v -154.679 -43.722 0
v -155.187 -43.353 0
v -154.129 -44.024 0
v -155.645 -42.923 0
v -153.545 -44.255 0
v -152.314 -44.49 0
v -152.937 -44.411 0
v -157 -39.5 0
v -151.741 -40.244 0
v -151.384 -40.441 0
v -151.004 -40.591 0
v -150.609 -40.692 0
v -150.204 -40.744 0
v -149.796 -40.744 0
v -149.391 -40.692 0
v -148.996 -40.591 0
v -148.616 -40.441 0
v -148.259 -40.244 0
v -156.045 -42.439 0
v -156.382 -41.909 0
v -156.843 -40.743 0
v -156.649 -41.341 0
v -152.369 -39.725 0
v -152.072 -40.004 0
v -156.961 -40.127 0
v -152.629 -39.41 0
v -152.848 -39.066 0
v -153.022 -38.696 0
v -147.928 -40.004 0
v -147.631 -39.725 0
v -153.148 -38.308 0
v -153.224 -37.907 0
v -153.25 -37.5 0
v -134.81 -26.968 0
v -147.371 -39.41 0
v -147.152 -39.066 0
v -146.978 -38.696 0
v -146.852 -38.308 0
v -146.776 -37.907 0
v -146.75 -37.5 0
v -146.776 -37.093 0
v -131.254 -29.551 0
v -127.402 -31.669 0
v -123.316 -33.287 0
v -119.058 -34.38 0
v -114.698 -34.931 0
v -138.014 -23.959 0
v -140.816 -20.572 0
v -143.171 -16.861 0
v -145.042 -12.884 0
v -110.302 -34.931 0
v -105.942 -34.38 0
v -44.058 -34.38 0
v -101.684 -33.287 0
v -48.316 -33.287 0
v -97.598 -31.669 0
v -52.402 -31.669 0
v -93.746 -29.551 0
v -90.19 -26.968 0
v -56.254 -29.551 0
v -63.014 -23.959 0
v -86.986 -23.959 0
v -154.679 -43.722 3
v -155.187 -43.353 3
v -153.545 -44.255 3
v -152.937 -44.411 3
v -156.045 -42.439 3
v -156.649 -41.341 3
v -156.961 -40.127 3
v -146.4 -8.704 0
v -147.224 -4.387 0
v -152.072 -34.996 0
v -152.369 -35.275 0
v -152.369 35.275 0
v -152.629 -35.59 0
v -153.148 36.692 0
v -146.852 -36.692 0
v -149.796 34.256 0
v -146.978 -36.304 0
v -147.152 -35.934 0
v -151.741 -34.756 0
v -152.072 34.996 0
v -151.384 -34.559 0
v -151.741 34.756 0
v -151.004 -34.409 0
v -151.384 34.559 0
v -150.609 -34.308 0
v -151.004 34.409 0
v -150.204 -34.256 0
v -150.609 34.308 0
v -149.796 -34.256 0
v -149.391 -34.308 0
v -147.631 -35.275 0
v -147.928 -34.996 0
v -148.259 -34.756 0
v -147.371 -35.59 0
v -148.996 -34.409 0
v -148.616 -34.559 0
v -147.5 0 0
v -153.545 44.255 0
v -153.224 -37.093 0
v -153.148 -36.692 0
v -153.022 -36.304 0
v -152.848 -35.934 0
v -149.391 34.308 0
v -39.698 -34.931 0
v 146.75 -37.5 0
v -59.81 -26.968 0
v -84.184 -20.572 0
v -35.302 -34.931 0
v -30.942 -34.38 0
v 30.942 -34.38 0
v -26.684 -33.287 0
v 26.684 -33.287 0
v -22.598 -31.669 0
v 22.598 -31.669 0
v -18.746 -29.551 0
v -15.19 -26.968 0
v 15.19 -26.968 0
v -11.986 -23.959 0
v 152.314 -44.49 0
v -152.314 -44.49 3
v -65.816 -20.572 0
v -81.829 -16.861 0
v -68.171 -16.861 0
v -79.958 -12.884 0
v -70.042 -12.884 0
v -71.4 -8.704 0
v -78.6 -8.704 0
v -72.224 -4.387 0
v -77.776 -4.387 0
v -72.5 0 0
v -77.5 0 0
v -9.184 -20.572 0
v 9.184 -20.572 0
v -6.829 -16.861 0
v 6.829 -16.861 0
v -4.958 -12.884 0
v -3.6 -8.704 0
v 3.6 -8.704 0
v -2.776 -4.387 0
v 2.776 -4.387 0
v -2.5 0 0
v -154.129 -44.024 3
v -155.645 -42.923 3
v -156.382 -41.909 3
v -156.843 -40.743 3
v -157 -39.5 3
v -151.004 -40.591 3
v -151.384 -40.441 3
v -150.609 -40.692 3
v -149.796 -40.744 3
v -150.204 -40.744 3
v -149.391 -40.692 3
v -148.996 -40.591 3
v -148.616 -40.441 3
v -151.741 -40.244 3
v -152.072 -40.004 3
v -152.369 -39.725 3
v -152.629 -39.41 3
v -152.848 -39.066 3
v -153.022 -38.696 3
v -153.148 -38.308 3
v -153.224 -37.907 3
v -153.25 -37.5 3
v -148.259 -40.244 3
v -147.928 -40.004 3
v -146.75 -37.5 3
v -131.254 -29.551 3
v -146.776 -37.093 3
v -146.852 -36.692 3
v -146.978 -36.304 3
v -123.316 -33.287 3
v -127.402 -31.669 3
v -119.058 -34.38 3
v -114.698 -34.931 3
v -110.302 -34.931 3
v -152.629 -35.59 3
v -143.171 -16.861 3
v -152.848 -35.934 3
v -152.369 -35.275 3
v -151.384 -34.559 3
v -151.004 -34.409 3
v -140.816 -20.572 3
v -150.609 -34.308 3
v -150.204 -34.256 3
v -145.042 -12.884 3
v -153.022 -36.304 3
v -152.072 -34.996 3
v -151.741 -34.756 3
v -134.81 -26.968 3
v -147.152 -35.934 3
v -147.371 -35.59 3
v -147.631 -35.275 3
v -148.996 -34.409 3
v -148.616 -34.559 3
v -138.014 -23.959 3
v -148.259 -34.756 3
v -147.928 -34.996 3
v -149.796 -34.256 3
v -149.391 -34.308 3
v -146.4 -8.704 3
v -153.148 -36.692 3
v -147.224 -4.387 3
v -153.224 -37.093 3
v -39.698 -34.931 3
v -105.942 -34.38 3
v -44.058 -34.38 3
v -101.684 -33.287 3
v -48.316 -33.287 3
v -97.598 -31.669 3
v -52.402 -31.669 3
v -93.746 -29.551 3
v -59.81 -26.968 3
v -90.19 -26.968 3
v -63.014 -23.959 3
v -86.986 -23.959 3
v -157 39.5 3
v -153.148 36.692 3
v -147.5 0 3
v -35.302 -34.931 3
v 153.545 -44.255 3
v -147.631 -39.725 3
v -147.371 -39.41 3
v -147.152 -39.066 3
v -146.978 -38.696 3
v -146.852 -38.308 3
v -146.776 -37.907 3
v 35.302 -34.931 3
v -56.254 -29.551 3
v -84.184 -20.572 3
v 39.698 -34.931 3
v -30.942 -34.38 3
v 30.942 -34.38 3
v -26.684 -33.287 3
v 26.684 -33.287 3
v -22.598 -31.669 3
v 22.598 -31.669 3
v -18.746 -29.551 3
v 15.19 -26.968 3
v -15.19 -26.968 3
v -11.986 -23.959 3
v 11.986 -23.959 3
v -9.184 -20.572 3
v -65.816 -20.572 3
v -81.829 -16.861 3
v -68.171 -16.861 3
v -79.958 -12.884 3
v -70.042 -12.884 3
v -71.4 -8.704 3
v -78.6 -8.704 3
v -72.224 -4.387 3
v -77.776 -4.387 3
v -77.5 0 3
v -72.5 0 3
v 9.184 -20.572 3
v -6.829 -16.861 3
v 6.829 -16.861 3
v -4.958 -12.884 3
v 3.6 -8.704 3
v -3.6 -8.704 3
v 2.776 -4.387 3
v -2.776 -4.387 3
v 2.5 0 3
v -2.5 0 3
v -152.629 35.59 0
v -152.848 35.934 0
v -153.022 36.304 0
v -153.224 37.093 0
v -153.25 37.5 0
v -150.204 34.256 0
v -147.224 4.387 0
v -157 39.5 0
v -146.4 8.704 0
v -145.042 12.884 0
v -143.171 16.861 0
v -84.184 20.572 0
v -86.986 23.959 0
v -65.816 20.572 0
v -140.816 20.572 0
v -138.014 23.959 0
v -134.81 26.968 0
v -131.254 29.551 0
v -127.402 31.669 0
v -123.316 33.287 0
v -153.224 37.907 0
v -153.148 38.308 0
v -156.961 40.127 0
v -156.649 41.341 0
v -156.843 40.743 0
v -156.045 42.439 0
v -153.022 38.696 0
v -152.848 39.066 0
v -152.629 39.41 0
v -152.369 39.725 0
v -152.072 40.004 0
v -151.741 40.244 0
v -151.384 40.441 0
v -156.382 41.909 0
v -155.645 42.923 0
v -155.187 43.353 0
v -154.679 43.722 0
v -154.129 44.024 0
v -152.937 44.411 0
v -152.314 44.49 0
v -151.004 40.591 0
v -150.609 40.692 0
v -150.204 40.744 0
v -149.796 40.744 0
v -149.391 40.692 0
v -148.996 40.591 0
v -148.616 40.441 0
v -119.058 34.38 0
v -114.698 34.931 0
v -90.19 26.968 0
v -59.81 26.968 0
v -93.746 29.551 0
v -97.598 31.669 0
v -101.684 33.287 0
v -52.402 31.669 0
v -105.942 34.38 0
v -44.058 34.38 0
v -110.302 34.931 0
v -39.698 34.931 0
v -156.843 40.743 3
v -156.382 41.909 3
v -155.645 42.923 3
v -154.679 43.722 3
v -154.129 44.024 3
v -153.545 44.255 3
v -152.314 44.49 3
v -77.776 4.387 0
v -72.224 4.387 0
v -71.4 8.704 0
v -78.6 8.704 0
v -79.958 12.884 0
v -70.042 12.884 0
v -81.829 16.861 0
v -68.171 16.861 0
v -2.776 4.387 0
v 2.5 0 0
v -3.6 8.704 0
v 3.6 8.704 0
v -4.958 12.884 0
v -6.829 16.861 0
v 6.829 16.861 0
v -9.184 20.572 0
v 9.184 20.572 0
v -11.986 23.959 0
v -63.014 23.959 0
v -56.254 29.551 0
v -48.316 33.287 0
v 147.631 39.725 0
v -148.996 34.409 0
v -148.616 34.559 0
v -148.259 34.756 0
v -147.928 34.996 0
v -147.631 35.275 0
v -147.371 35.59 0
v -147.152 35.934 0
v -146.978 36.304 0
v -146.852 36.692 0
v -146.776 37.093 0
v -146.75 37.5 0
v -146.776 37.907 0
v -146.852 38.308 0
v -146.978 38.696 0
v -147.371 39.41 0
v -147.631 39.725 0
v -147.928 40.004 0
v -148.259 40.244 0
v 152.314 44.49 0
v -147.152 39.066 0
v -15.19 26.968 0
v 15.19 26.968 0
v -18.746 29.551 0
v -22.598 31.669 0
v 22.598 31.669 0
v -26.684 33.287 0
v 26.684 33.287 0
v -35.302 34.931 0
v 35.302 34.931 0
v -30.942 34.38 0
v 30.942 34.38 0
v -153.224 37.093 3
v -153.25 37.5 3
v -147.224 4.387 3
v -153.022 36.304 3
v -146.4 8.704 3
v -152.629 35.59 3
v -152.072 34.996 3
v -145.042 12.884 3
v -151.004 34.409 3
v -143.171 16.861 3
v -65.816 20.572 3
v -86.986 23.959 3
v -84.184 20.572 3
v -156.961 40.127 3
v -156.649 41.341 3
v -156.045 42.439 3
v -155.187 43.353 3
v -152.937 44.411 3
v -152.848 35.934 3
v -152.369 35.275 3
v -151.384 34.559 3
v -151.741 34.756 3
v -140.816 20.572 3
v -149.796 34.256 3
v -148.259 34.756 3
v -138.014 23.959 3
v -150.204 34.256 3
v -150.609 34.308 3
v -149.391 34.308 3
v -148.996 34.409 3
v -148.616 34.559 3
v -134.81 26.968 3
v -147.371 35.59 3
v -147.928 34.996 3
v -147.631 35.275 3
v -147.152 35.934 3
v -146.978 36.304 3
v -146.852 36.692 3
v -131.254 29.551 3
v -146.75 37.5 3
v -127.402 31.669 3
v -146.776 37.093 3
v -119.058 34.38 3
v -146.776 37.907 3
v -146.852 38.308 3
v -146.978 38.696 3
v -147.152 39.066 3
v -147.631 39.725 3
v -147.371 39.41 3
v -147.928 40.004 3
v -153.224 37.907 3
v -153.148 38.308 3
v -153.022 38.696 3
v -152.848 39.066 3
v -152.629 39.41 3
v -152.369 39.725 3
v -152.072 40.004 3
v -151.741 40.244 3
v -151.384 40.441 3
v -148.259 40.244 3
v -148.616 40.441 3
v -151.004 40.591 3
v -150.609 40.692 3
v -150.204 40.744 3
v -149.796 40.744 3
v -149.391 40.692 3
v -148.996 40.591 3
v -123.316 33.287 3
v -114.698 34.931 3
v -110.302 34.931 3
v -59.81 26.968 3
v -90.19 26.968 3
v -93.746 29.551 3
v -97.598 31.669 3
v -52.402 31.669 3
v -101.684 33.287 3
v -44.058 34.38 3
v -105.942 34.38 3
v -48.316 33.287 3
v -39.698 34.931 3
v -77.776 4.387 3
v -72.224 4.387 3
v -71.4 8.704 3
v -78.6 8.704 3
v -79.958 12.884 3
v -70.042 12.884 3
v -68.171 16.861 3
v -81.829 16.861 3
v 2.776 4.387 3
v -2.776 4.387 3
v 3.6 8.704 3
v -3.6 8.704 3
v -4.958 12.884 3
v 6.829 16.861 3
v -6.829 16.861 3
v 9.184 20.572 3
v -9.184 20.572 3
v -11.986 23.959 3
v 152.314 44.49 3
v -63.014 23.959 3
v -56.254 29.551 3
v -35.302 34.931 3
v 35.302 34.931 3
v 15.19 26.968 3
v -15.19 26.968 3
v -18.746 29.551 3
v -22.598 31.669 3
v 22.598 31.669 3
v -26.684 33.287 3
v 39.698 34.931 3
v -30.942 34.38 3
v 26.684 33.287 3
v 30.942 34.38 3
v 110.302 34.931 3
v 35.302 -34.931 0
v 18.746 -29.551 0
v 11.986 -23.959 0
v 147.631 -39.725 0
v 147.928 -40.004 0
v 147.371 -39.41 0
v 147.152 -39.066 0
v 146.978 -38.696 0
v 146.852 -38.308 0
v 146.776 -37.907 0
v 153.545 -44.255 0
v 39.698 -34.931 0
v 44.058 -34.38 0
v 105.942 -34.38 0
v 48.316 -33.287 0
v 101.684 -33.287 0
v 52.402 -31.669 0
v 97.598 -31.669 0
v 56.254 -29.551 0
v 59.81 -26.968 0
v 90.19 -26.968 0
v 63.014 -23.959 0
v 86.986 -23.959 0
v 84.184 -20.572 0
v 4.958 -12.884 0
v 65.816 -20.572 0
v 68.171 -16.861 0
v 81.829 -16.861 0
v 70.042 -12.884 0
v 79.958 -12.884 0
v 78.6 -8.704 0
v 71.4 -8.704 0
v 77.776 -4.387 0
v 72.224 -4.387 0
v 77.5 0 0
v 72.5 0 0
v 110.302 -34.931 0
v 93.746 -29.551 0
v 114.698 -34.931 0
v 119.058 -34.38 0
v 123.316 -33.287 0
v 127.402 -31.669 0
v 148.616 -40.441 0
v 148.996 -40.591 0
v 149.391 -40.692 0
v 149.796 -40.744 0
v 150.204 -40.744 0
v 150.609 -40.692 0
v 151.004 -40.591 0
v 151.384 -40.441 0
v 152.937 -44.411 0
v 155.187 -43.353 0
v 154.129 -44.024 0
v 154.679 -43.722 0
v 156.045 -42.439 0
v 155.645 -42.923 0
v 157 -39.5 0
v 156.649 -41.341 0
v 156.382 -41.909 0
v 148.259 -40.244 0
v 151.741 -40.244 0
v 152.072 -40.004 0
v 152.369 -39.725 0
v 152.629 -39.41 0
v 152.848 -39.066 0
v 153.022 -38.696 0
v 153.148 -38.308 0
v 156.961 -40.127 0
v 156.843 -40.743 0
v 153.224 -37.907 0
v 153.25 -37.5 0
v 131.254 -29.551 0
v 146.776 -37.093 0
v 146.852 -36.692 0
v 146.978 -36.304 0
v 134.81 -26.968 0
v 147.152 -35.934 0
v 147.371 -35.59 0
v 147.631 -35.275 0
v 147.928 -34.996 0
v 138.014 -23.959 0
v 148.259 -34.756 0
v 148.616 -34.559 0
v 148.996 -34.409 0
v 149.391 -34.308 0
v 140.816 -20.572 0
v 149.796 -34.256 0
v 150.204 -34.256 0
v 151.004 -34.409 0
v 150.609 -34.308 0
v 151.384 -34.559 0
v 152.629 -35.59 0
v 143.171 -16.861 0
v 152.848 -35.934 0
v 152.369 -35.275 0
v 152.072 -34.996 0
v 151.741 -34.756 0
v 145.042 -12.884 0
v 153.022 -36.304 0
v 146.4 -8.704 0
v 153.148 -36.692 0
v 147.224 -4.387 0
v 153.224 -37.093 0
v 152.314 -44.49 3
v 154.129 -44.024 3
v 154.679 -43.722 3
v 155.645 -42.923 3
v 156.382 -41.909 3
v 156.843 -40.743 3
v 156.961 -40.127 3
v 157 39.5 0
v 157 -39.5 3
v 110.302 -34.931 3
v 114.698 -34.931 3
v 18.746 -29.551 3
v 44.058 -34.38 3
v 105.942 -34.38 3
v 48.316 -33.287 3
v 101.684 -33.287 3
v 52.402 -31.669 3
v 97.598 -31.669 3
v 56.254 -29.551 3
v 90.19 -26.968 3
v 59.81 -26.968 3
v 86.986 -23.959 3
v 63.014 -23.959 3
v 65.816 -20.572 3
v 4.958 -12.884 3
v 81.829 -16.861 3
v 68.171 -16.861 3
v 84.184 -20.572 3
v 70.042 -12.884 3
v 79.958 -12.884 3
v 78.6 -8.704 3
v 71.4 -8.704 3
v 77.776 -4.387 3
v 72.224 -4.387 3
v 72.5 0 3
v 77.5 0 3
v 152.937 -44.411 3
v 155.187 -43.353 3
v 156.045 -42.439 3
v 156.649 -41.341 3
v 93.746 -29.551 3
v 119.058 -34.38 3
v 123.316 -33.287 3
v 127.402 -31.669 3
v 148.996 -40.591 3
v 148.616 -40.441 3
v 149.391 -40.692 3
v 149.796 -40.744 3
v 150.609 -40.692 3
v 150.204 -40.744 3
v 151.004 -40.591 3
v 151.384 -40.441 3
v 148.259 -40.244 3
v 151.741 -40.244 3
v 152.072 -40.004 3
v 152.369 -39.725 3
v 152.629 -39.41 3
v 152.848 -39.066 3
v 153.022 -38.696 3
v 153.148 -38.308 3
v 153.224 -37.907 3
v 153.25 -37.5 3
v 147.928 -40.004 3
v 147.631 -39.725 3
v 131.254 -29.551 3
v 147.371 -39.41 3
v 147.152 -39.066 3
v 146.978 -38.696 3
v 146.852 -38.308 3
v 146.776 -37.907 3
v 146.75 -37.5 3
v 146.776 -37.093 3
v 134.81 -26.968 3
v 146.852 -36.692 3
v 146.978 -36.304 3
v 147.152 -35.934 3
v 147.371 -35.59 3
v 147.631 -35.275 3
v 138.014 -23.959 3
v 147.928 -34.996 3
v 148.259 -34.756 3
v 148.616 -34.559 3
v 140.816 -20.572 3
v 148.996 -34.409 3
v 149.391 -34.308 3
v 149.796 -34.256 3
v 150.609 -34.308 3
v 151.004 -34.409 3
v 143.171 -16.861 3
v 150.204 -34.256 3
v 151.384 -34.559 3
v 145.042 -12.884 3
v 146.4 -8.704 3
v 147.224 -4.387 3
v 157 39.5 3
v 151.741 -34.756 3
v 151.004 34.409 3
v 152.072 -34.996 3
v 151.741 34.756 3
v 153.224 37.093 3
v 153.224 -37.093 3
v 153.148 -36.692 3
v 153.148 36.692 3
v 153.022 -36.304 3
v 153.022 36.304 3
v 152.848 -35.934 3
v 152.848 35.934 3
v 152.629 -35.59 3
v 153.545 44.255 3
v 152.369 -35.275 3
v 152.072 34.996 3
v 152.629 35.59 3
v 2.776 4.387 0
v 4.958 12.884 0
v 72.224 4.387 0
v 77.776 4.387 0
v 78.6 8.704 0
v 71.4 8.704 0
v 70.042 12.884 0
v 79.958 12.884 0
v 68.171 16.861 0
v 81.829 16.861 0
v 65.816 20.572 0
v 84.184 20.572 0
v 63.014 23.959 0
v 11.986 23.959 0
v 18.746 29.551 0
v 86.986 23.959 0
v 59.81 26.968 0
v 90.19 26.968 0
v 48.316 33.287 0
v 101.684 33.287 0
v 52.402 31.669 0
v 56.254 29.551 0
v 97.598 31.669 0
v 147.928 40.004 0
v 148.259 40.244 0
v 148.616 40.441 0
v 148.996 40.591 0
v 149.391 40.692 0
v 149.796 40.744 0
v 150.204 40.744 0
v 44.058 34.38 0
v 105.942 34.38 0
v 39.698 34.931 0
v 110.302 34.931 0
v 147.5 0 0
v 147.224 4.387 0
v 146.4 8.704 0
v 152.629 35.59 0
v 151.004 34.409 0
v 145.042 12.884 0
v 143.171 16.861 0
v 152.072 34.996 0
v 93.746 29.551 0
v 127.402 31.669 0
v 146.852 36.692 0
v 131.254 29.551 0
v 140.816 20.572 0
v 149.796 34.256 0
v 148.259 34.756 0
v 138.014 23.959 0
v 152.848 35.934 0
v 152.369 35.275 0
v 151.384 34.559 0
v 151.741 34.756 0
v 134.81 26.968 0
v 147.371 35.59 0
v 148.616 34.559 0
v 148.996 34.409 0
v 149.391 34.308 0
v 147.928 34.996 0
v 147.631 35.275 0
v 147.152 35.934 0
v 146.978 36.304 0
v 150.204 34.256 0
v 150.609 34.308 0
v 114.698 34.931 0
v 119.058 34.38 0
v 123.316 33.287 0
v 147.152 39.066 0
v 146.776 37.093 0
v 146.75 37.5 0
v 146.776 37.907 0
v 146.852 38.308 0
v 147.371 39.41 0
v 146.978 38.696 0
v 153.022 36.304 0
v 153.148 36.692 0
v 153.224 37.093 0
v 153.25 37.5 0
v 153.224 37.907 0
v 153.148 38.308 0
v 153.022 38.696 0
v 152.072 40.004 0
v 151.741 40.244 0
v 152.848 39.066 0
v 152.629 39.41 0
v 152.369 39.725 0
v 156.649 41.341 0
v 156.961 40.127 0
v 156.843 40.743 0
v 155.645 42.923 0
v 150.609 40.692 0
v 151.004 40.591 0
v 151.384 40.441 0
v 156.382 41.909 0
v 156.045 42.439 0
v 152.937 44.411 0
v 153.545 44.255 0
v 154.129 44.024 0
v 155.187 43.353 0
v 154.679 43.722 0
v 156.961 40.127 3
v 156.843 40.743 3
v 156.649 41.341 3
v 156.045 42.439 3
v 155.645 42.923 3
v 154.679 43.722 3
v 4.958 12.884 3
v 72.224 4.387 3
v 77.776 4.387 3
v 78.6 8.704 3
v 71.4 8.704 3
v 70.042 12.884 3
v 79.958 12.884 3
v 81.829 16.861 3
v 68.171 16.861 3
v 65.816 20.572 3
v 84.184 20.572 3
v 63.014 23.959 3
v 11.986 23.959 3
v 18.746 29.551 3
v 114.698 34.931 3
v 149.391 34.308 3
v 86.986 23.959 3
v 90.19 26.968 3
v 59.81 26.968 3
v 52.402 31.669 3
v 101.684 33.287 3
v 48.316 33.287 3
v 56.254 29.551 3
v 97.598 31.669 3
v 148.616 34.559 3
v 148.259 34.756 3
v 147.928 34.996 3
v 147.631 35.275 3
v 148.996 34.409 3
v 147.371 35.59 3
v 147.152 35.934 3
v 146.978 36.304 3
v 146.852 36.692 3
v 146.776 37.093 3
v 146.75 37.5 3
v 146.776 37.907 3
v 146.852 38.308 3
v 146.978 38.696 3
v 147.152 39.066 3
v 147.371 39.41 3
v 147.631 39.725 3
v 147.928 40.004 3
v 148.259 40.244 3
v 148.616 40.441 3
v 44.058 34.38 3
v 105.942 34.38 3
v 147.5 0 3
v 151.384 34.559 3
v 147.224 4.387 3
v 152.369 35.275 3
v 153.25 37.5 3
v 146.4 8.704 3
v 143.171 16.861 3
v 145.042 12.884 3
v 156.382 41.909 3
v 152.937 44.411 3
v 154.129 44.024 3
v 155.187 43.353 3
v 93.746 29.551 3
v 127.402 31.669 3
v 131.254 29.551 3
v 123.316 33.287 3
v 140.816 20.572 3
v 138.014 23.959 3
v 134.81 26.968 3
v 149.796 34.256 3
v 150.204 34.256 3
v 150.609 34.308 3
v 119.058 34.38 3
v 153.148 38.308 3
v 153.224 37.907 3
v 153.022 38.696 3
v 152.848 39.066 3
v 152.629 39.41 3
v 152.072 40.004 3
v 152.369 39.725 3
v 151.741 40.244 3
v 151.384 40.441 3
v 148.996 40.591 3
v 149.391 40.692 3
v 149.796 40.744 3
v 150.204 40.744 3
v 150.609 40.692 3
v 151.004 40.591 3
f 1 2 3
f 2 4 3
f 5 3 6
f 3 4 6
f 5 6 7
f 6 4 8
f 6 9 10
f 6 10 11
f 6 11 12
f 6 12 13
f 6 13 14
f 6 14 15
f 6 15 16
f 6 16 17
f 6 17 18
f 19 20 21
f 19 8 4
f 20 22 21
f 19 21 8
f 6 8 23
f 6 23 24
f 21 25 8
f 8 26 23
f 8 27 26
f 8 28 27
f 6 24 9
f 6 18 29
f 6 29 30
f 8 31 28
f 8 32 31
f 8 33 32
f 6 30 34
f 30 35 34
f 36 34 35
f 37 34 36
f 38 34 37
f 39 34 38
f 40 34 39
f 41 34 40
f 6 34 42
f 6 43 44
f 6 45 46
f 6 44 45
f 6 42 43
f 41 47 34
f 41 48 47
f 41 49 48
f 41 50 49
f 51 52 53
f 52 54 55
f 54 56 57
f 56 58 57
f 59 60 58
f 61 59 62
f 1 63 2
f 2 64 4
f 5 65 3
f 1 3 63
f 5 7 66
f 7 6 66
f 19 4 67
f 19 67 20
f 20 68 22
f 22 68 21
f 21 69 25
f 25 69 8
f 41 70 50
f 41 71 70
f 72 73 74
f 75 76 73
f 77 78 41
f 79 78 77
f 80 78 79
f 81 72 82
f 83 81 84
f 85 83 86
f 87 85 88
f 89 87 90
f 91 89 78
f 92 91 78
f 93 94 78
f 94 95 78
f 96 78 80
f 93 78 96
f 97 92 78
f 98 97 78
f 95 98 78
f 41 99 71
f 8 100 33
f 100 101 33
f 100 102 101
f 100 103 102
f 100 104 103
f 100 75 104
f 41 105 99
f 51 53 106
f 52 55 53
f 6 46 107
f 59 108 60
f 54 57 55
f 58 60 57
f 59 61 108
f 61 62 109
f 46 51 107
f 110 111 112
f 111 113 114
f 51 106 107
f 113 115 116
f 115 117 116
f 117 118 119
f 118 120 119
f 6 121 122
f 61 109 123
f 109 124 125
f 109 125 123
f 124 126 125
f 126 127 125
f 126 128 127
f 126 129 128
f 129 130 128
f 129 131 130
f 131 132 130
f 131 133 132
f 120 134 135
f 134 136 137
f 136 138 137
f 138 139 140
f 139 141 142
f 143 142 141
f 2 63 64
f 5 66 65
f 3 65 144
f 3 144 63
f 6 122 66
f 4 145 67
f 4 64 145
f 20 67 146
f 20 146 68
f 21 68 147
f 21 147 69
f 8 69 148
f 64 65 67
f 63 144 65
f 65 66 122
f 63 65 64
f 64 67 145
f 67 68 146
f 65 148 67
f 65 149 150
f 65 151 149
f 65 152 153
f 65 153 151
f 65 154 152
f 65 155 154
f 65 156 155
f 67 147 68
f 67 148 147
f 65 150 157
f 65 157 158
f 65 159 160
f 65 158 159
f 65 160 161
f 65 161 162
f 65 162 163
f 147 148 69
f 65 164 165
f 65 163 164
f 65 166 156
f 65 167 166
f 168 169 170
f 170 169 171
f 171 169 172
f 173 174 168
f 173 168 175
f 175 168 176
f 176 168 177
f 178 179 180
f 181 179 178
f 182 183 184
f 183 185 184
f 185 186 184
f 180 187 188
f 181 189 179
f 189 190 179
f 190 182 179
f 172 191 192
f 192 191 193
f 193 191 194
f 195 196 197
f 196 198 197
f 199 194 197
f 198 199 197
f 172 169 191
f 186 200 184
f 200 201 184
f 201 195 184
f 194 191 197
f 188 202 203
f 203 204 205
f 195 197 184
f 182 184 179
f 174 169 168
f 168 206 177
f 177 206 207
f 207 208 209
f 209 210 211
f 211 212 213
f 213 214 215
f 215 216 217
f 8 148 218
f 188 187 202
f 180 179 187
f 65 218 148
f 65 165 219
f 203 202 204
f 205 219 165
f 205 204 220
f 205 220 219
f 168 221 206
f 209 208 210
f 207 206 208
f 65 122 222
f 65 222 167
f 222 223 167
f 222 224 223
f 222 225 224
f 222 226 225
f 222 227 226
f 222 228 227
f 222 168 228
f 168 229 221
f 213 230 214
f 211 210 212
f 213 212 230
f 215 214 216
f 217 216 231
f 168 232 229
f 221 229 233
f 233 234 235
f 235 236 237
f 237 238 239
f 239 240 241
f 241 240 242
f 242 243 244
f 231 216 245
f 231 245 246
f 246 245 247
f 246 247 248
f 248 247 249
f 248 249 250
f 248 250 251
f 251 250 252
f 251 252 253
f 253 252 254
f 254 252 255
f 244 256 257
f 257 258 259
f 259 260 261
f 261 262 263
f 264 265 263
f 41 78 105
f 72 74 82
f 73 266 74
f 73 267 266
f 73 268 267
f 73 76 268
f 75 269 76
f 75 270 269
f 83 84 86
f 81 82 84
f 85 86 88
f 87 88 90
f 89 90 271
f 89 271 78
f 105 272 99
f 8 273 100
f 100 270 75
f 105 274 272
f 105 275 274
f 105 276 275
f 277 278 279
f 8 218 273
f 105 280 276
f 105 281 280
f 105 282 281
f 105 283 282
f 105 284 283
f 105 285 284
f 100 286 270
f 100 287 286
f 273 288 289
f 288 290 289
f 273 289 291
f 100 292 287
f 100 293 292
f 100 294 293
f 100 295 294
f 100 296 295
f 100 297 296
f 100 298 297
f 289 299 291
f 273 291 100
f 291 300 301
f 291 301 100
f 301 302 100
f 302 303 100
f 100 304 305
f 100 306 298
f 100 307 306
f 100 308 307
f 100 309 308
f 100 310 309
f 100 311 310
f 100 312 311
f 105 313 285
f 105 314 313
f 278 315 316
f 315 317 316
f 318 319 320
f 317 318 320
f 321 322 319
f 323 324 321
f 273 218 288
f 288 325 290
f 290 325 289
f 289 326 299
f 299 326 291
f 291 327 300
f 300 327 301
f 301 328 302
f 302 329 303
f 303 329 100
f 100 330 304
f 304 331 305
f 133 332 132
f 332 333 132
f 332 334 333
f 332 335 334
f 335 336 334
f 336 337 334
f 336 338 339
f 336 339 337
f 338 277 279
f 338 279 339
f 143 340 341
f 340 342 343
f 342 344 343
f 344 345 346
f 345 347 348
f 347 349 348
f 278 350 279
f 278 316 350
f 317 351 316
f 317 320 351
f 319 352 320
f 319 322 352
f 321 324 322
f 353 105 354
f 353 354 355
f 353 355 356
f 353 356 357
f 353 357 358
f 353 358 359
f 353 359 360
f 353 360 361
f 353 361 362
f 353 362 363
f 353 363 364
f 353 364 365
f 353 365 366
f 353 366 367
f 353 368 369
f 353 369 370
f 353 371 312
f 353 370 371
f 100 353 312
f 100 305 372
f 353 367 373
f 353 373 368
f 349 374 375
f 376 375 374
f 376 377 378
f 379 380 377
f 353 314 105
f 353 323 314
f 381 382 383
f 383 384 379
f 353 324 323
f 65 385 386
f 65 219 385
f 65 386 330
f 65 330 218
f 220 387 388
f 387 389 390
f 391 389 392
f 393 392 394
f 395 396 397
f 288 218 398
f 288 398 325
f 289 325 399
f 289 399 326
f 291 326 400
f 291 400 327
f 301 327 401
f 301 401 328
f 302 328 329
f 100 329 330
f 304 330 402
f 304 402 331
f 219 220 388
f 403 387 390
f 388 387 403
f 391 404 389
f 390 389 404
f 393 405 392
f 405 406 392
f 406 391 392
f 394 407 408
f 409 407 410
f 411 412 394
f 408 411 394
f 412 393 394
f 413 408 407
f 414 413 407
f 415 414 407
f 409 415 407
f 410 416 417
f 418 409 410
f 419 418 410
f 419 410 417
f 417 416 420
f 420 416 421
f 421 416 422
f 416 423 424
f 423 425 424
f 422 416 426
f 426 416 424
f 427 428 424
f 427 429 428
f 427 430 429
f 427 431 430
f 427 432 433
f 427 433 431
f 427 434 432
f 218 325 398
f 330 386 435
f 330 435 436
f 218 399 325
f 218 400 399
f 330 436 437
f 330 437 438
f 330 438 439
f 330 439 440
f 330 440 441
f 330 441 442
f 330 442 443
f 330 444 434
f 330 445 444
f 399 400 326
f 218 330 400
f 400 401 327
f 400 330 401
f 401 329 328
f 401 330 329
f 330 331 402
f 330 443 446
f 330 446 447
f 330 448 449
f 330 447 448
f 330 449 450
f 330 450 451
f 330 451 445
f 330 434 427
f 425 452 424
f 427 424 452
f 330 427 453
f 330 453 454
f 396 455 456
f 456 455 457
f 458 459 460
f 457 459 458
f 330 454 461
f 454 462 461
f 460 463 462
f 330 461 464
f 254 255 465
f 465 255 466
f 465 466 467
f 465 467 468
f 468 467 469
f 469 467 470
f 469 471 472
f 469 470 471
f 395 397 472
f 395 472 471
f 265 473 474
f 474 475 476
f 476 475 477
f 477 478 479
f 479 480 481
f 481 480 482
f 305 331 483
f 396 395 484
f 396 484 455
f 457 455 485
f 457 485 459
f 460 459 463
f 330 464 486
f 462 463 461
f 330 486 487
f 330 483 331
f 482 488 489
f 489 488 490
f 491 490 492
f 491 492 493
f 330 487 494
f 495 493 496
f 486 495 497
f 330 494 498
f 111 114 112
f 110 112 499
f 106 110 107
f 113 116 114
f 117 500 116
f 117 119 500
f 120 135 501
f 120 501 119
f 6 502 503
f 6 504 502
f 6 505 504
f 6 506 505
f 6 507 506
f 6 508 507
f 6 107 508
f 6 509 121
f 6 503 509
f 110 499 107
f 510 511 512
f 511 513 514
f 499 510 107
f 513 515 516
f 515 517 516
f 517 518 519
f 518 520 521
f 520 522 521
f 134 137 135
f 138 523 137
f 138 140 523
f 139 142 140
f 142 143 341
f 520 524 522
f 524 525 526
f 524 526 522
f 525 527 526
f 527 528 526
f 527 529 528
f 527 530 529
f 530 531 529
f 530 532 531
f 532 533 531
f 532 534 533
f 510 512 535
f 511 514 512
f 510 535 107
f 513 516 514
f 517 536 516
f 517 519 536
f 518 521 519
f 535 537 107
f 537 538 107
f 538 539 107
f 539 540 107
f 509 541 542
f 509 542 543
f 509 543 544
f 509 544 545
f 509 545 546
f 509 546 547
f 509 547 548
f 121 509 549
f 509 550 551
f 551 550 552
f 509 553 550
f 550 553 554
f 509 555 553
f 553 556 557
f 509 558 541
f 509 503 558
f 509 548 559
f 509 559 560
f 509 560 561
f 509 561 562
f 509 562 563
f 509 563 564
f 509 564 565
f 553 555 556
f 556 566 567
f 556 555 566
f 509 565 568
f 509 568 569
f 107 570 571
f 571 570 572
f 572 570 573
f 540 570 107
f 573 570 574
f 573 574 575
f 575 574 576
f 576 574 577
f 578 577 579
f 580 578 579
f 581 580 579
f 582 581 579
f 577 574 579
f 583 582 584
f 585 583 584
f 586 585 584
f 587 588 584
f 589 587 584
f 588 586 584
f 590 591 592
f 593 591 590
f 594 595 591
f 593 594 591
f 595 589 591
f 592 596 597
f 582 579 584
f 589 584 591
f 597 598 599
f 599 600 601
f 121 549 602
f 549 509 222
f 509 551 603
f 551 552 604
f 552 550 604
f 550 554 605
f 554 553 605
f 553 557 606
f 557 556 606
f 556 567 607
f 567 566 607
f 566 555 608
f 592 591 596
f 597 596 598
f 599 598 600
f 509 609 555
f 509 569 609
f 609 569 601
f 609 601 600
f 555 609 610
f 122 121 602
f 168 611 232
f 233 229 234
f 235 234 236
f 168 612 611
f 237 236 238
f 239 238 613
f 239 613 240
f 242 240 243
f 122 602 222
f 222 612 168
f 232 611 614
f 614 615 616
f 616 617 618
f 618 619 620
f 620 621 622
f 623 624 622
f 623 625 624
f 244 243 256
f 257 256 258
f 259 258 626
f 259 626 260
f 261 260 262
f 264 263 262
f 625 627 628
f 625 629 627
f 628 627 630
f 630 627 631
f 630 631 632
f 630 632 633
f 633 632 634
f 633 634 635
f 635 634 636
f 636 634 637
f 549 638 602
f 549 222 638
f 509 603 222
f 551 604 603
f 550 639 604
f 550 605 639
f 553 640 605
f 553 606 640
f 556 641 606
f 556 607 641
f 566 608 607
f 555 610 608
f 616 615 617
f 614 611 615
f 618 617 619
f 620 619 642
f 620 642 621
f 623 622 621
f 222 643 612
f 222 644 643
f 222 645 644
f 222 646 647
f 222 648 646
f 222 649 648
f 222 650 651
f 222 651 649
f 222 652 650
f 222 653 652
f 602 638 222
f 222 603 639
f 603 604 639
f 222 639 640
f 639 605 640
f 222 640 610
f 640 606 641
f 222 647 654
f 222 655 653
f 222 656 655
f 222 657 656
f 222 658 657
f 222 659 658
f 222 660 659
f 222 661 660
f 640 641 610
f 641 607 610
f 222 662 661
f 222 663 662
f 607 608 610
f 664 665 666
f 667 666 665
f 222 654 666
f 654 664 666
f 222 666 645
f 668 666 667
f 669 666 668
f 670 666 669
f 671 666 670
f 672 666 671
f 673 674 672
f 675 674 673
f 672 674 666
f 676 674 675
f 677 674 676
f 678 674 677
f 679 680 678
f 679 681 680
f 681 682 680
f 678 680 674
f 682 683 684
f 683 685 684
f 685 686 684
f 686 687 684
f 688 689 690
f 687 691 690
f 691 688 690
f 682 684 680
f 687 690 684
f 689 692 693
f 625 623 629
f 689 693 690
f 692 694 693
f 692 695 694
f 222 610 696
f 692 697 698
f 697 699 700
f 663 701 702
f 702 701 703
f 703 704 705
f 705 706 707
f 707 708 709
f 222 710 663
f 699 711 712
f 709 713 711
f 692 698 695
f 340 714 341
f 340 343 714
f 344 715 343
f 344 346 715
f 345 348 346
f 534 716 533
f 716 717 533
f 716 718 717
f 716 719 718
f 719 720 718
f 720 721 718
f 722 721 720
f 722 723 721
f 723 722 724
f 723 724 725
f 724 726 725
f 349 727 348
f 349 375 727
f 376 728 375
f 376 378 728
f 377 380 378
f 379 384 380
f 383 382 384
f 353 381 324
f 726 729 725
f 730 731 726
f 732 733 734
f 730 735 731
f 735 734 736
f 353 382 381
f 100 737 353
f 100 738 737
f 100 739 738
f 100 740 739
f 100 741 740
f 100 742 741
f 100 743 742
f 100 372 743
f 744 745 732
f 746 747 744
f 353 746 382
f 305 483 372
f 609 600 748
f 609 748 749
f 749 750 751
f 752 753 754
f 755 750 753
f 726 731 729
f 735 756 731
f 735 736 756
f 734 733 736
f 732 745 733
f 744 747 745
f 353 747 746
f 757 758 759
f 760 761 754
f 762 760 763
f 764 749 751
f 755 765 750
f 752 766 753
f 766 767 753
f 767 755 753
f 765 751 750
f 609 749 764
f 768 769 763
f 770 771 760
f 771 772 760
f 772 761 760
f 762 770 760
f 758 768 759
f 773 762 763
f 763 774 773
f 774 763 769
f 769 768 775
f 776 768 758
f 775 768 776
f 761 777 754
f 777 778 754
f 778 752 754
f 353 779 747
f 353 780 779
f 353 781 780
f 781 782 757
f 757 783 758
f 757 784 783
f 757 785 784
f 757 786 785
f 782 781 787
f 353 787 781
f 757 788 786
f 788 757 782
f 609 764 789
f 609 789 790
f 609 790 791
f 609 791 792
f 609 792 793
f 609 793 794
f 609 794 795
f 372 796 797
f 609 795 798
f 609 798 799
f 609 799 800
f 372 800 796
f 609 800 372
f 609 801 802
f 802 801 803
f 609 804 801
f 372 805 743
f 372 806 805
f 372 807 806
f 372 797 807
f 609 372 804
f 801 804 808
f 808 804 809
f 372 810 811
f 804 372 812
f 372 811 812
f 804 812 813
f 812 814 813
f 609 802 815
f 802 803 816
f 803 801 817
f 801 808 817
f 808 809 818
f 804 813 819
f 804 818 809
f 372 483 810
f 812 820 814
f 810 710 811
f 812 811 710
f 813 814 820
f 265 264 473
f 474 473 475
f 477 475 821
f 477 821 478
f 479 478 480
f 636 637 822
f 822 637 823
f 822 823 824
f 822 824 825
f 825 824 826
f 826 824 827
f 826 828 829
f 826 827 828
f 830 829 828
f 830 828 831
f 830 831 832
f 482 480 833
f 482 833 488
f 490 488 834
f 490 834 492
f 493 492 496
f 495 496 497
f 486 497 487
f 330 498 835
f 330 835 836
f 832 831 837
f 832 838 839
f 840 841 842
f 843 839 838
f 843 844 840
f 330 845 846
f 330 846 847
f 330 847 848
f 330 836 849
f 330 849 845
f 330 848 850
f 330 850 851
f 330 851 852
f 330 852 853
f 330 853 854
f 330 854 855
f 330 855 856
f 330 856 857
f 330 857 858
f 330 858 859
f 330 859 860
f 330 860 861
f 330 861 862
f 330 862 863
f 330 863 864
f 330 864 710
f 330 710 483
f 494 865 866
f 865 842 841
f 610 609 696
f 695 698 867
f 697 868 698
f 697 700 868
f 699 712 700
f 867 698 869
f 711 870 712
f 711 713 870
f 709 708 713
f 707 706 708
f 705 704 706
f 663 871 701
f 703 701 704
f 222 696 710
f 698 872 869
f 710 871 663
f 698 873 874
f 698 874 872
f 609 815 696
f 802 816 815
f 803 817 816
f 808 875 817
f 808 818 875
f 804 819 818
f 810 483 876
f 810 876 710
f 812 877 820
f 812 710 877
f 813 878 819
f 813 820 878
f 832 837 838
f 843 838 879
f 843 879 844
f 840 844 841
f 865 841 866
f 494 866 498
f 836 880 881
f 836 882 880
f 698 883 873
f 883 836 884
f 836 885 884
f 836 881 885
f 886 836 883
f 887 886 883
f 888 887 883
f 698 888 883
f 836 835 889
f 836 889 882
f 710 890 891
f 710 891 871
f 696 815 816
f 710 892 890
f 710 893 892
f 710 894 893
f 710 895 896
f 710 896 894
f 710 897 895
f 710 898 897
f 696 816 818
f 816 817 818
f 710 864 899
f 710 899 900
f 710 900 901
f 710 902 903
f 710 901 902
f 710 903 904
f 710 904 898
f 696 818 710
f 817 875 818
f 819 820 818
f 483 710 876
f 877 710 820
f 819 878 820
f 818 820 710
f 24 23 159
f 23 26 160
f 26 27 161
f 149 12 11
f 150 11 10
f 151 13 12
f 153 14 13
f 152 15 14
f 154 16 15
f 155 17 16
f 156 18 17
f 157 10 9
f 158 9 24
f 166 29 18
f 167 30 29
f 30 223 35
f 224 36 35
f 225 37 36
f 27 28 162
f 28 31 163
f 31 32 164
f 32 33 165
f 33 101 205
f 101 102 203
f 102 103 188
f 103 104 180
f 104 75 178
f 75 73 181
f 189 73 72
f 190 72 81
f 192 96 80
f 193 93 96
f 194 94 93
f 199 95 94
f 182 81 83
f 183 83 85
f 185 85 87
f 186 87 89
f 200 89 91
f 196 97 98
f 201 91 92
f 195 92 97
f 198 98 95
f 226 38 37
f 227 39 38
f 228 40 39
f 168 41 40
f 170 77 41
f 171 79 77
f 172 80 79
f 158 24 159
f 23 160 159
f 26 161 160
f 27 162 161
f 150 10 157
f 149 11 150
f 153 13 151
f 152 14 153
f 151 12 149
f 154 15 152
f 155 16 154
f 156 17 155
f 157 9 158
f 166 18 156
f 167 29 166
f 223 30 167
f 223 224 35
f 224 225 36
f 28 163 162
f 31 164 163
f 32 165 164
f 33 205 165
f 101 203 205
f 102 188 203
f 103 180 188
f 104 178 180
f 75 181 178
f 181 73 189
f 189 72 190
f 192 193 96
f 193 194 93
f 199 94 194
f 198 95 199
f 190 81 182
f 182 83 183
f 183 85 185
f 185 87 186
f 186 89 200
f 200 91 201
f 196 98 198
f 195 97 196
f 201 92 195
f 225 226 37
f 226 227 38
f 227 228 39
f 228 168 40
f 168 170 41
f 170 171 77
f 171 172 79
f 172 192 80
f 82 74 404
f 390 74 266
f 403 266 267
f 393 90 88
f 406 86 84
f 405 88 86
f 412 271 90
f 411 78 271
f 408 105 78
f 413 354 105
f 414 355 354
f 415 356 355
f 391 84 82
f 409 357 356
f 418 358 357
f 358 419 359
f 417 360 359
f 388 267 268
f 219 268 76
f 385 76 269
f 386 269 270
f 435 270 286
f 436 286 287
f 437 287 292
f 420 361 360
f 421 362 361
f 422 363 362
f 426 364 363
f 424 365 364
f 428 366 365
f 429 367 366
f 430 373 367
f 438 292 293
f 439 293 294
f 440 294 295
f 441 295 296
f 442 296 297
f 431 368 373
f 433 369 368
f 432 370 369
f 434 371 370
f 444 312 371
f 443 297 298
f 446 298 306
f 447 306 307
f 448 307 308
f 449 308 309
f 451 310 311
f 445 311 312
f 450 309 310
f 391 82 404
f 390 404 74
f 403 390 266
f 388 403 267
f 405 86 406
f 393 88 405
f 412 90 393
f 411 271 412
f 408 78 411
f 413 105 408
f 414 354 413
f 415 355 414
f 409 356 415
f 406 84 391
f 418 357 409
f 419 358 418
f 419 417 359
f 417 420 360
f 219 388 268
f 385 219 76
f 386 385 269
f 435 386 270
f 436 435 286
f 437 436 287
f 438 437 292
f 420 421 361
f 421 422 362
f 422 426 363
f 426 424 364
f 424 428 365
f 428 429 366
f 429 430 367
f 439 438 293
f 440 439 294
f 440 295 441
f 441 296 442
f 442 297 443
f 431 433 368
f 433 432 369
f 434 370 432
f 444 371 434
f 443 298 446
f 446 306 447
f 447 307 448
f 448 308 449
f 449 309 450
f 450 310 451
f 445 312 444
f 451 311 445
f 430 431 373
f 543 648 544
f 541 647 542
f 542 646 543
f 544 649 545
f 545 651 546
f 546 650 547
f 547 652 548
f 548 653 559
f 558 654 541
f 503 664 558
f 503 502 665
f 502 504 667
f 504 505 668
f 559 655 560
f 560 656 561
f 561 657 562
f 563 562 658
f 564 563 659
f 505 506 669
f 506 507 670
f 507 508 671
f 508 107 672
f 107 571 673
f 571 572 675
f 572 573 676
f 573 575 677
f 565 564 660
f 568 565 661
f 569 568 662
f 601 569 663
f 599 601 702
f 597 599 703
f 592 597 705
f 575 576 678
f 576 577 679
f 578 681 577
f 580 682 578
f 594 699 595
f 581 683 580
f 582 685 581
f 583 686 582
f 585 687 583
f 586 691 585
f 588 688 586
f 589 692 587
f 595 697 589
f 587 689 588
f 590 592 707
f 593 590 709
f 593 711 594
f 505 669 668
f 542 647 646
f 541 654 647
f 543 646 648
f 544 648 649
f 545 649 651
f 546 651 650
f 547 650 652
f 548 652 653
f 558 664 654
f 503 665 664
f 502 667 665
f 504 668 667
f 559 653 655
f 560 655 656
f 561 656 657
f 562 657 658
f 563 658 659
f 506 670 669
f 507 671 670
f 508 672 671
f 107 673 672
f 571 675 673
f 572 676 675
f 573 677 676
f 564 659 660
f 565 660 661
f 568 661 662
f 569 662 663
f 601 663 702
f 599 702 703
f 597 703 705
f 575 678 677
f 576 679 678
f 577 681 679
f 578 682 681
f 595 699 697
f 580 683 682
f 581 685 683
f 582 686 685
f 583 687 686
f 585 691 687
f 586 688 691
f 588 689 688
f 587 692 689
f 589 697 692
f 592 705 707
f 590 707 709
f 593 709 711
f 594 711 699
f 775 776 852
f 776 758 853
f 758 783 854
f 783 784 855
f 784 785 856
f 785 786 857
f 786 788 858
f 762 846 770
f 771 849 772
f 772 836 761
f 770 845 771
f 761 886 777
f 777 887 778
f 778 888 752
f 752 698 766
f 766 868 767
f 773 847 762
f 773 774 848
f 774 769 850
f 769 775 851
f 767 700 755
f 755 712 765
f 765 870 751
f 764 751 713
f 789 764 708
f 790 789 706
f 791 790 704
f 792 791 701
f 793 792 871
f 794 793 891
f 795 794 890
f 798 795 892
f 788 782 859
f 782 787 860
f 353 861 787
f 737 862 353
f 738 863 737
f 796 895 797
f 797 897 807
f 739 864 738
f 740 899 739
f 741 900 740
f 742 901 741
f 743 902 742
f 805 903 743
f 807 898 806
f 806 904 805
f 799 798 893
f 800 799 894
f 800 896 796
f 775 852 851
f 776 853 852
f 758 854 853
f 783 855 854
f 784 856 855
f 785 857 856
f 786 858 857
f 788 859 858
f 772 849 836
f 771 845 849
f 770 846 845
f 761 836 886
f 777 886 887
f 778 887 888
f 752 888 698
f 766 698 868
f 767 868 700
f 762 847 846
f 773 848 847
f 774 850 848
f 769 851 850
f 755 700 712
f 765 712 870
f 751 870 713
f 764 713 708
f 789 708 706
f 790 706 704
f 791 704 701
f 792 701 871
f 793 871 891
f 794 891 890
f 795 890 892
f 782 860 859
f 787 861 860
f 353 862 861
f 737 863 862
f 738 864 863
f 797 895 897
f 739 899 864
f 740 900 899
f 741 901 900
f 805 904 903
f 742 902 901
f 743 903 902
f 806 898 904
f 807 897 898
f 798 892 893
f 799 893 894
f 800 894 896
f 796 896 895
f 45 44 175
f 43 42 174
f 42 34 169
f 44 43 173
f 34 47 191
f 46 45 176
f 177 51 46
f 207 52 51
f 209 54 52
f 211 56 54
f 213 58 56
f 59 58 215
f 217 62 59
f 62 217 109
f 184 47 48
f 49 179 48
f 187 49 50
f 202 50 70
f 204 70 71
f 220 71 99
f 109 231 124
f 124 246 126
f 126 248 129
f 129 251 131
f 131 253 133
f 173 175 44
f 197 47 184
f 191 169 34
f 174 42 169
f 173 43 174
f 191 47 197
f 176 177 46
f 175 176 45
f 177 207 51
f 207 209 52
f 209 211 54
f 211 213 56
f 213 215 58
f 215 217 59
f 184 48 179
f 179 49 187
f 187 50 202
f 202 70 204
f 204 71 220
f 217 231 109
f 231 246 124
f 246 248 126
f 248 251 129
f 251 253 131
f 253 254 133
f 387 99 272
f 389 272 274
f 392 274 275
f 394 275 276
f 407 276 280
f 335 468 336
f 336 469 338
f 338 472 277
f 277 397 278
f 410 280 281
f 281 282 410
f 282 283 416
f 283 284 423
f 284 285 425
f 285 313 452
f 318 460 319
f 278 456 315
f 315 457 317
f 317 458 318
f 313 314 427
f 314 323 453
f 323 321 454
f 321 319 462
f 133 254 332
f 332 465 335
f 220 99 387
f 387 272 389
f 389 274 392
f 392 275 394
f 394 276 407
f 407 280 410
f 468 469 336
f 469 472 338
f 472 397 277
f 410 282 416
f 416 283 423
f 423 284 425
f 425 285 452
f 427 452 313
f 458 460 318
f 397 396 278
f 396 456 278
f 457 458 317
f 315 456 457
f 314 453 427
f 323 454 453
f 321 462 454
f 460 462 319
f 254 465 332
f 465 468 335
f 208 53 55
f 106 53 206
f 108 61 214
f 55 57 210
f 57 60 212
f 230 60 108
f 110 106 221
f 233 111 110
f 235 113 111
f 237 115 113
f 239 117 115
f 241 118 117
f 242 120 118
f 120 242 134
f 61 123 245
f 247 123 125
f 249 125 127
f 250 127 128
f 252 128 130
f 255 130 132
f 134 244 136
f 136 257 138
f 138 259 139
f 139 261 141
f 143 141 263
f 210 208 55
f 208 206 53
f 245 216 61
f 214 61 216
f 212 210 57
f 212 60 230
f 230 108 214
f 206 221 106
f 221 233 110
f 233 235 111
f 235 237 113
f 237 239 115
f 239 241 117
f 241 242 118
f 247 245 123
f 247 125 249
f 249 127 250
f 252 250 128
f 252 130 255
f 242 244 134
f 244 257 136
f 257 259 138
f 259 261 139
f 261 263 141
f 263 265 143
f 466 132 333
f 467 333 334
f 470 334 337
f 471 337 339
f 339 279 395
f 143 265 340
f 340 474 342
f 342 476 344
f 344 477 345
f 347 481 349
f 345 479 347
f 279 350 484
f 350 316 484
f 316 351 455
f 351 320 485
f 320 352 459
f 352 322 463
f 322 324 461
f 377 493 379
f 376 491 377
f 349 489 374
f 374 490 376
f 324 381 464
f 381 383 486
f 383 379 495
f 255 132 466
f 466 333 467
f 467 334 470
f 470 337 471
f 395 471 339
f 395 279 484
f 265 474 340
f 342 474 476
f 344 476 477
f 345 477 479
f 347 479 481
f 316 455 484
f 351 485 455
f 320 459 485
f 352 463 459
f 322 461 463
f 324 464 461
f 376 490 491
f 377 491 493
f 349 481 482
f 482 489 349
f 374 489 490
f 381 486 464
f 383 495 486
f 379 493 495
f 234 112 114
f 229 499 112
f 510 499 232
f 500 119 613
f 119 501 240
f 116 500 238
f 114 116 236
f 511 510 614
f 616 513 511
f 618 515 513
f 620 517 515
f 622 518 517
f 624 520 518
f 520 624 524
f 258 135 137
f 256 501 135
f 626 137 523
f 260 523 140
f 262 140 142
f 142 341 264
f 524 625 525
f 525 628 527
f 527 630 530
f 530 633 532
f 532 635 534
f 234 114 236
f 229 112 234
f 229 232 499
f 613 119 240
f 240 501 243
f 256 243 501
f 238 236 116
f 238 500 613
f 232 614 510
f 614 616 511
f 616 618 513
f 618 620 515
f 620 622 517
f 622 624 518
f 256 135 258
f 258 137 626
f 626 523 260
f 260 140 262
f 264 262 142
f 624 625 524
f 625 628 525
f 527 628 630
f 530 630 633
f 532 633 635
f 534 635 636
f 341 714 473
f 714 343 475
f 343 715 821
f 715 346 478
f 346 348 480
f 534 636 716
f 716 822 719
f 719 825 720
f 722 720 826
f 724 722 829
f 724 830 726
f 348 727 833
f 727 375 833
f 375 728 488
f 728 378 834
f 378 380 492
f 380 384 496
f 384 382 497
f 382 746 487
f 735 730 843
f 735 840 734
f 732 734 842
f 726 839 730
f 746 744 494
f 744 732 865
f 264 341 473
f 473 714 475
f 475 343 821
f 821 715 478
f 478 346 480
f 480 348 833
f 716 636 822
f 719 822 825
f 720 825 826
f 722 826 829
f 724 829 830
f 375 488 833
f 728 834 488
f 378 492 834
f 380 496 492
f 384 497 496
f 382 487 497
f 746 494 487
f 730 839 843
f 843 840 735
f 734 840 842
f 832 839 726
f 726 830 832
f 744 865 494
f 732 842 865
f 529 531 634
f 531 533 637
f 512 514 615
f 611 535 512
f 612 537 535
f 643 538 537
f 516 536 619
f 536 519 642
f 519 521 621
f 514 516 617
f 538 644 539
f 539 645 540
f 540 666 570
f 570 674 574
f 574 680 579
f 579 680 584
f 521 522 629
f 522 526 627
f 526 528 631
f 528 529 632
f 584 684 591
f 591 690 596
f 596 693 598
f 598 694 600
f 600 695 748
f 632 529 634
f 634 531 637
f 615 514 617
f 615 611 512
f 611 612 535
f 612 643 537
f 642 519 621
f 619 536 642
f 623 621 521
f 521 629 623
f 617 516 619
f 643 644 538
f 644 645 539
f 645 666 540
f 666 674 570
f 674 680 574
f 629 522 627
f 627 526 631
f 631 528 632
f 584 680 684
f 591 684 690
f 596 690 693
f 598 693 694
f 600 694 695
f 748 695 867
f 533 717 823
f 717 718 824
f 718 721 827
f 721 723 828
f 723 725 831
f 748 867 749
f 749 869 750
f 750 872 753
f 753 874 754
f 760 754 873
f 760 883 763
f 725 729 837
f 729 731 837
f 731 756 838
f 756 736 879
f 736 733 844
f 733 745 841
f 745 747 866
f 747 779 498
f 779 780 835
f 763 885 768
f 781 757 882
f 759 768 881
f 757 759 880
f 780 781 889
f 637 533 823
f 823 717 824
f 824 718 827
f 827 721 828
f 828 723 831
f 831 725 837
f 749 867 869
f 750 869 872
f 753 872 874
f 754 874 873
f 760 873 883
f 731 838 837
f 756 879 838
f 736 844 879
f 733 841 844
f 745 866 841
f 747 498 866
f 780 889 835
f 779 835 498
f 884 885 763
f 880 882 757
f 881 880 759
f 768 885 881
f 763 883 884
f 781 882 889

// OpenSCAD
$fn = 50;

difference() {
	union() {
		hull() {
			translate(v = [-152.0, 39.5, 0]) {
				cylinder(h = 3, r = 5);
			}
			translate(v = [152.0, 39.5, 0]) {
				cylinder(h = 3, r = 5);
			}
			translate(v = [-152.0, -39.5, 0]) {
				cylinder(h = 3, r = 5);
			}
			translate(v = [152.0, -39.5, 0]) {
				cylinder(h = 3, r = 5);
			}
		}
	}
	union() {
		translate(v = [-150.0, -37.5, -100.0]) {
			cylinder(h = 200, r = 3.25);
		}
		translate(v = [-150.0, 37.5, -100.0]) {
			cylinder(h = 200, r = 3.25);
		}
		translate(v = [150.0, -37.5, -100.0]) {
			cylinder(h = 200, r = 3.25);
		}
		translate(v = [150.0, 37.5, -100.0]) {
			cylinder(h = 200, r = 3.25);
		}
		translate(v = [-150.0, -37.5, -100.0]) {
			cylinder(h = 200, r = 1.8);
		}
		translate(v = [-150.0, 37.5, -100.0]) {
			cylinder(h = 200, r = 1.8);
		}
		translate(v = [150.0, -37.5, -100.0]) {
			cylinder(h = 200, r = 1.8);
		}
		translate(v = [150.0, 37.5, -100.0]) {
			cylinder(h = 200, r = 1.8);
		}
		translate(v = [-112.5, 0, 0.0]) {
			cylinder(h = 3, r = 35.0);
		}
		translate(v = [-37.5, 0, 0.0]) {
			cylinder(h = 3, r = 35.0);
		}
		translate(v = [37.5, 0, 0.0]) {
			cylinder(h = 3, r = 35.0);
		}
		translate(v = [112.5, 0, 0.0]) {
			cylinder(h = 3, r = 35.0);
		}
	}
}
